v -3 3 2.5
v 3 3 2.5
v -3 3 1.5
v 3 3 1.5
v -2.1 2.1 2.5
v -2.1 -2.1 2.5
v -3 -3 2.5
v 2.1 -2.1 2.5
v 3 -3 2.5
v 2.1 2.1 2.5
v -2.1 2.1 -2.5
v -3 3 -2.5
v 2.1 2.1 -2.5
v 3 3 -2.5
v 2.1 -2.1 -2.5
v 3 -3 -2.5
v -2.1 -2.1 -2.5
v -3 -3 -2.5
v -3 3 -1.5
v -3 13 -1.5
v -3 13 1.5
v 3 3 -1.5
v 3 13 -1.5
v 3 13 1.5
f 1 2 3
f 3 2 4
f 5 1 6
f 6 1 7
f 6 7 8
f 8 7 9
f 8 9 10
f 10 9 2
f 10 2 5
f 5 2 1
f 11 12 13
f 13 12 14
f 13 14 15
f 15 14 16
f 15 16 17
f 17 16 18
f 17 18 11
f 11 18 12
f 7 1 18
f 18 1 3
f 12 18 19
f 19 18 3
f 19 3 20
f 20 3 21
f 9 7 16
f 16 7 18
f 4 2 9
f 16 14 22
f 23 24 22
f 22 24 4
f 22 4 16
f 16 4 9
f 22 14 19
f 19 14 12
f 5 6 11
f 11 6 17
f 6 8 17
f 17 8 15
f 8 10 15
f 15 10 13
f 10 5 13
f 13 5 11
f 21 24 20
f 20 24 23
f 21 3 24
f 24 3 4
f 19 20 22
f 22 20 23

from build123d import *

# Parameters (mm, degrees)
SKETCH1_W           = 6
SKETCH1_H           = 6
SKETCH1_W_2         = 4.2
SKETCH1_H_2         = 4.2
BOSS_EXTRUDE1_DEPTH = 2.5
SKETCH2_W           = 6
SKETCH2_H           = 10
BOSS_EXTRUDE2_DEPTH = 1.5


with BuildPart() as part:
    # Sketch1 → Boss-Extrude1 (new, symmetric)
    with BuildSketch(Plane.XY):
        Rectangle(SKETCH1_W, SKETCH1_H)
        Rectangle(SKETCH1_W_2, SKETCH1_H_2, mode=Mode.SUBTRACT)
    extrude(amount=BOSS_EXTRUDE1_DEPTH, both=True)

    # Sketch2 → Boss-Extrude2 (add, symmetric)
    with BuildSketch(Plane.XY):
        with Locations((0, 8)):
            Rectangle(SKETCH2_W, SKETCH2_H)
    extrude(amount=BOSS_EXTRUDE2_DEPTH, both=True)


solid = part.part
